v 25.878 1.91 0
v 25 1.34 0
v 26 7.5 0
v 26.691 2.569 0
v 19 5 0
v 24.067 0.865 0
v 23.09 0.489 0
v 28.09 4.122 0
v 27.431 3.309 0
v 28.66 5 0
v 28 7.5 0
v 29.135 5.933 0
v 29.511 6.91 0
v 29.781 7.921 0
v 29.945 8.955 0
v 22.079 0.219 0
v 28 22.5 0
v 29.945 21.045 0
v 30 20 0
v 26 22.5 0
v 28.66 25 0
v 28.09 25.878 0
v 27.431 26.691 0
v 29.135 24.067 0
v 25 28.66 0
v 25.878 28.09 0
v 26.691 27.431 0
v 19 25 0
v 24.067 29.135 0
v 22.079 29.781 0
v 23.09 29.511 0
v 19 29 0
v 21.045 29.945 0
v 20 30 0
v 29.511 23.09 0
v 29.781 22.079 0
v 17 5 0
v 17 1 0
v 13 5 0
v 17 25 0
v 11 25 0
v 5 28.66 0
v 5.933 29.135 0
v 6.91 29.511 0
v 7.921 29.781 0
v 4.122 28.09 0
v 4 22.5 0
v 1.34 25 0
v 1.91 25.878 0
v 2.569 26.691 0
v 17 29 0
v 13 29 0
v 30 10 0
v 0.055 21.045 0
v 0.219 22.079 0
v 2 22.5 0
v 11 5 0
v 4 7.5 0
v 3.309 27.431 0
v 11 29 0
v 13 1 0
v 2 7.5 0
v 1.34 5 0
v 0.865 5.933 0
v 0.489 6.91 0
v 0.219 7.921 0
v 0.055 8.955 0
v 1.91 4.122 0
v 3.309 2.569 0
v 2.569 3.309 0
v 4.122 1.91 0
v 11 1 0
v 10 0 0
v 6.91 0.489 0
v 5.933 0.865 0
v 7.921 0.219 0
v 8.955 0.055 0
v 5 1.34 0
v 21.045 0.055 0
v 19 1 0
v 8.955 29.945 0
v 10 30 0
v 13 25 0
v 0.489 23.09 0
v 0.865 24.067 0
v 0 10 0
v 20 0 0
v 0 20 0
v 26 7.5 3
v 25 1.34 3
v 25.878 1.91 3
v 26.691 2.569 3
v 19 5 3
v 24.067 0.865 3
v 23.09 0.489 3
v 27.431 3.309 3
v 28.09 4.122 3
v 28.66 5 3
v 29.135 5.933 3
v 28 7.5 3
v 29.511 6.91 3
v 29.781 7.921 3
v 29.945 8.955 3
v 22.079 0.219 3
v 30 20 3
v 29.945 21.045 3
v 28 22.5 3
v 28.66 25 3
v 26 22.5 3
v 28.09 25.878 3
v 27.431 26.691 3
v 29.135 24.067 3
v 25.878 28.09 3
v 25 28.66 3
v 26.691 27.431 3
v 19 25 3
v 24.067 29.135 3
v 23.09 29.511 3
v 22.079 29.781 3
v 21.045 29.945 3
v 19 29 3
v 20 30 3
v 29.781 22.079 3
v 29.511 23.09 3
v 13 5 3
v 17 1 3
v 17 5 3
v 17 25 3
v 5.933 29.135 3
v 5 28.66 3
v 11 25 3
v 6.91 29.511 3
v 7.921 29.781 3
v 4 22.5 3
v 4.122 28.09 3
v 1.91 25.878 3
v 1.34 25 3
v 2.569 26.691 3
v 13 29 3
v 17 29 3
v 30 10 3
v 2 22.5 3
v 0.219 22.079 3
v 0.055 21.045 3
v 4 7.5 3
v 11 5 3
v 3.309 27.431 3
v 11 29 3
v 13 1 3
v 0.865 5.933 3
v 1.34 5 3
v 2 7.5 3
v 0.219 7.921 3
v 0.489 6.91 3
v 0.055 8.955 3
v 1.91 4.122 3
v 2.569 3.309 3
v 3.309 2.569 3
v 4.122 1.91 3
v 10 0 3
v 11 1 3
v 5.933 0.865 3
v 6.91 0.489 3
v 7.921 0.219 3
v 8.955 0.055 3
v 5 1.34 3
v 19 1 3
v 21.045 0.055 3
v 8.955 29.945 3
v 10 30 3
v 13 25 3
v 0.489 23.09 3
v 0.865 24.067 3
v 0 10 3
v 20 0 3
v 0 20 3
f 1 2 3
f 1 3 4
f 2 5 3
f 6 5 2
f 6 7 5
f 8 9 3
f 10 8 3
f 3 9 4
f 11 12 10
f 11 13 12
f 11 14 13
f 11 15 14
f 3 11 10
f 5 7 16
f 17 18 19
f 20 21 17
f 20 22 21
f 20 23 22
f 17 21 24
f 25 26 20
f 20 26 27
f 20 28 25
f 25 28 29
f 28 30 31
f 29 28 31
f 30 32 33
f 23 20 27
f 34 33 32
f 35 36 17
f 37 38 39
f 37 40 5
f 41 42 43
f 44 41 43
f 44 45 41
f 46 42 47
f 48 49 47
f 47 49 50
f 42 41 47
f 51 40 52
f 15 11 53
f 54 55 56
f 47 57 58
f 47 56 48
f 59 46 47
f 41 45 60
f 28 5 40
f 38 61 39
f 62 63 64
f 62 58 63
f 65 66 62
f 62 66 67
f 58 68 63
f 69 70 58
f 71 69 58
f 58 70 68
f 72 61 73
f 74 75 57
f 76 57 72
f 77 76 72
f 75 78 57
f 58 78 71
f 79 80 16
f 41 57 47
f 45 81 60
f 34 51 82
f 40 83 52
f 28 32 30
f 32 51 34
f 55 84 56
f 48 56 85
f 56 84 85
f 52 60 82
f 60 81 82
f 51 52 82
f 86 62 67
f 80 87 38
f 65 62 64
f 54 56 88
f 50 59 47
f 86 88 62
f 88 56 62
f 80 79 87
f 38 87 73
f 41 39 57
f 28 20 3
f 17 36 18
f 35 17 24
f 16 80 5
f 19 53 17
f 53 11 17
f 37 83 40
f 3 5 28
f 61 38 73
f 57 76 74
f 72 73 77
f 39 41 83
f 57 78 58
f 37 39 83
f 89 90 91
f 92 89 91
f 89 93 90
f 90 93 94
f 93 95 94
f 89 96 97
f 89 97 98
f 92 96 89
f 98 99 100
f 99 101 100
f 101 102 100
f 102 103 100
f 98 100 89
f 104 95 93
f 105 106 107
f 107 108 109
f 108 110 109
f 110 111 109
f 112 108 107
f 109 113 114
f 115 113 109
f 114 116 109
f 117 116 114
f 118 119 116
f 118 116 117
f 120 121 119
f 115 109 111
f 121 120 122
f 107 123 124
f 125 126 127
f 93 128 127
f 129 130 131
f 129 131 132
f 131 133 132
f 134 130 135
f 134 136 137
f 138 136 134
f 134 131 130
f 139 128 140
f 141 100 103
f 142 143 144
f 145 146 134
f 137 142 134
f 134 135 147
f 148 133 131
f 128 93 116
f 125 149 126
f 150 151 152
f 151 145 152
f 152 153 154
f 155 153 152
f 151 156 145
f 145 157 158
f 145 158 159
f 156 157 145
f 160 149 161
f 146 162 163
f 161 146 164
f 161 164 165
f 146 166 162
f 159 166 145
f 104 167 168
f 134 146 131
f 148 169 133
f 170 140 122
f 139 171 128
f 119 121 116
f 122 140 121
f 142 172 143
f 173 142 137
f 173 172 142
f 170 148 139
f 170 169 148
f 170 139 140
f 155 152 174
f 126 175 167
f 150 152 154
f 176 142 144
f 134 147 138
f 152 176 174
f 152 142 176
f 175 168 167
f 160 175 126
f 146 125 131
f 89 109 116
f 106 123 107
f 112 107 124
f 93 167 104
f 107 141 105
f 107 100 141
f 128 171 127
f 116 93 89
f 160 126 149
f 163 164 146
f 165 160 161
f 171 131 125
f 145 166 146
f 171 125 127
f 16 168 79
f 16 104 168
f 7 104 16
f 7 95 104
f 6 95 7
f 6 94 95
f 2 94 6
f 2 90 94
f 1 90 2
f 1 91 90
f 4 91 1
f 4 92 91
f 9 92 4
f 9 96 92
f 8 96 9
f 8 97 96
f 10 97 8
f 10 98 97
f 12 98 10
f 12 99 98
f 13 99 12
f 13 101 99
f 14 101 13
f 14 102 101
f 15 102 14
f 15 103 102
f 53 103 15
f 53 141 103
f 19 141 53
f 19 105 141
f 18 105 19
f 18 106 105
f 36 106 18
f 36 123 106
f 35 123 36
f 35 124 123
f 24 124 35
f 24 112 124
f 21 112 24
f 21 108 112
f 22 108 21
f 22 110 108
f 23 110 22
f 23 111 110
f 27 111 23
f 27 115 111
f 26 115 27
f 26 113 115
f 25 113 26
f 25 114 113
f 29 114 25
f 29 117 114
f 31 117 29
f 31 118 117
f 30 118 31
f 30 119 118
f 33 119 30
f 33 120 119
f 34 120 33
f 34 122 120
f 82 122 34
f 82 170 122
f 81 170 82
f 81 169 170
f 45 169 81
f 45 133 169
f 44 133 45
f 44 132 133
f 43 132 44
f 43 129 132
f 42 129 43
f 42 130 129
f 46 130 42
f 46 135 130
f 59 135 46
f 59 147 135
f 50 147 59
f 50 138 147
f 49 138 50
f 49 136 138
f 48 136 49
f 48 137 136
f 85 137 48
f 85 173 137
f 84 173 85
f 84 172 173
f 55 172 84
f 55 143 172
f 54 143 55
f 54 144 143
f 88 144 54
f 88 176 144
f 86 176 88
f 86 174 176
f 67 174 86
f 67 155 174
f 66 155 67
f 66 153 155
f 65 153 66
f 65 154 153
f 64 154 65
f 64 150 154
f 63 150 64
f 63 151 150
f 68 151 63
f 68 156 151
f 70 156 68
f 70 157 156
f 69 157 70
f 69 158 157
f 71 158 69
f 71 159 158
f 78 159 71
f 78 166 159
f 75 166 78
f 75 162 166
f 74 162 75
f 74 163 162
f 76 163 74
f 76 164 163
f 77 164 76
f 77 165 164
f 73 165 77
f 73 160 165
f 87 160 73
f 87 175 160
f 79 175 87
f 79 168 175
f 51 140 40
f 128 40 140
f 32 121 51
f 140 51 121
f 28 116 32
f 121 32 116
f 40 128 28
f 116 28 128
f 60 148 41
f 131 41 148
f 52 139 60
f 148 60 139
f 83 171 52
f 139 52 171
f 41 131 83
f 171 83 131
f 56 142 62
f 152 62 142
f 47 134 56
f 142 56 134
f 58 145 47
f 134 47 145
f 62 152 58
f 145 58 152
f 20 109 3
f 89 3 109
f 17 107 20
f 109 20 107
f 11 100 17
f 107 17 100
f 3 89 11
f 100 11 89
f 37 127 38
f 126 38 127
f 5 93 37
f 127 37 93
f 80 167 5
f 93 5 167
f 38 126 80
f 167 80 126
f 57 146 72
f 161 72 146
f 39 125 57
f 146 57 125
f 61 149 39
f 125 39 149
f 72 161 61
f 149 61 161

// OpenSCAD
$fn = 60;

width_bracelet = 30;
length_bracelet = 30;

length_hole_bracelet = 0.5 * length_bracelet;
width_hole_bracelet = 2;

pos_x_hole_1 = 0.9 * width_bracelet;
pos_x_hole_2 = 0.1 * width_bracelet;
pos_y_hole = 0.50 * length_bracelet;

small_hole_width = 2;
small_hole_length = 4;
low_s_pos_hole = 0.1 * length_bracelet;
high_s_pos_hole = 0.9 * length_bracelet;
left_s_pos_hole = 0.6 * width_bracelet;
right_s_pos_hole = 0.4 * width_bracelet;

radius_edge = 10;
thickness = 5;

// Create square with holes..
linear_extrude(3) difference(){
    union(){
        difference() {
            // This creates the initial square
            square([width_bracelet, length_bracelet]);
            // This cuts out the square corners
            union() {
                translate([0, 0, 0])
                    square(radius_edge, center = false);
                translate([width_bracelet-radius_edge, 0, 0])
                    square(radius_edge, center = false);
                translate([0, length_bracelet-radius_edge, 0])
                    square(radius_edge, center = false);
                translate([width_bracelet-radius_edge, length_bracelet-radius_edge, 0])
                    square(radius_edge, center = false);
            };
        }
        // This adds the rounds corners
        translate([radius_edge, radius_edge, 0]) circle(r=radius_edge, center=true);
        translate([width_bracelet - radius_edge, radius_edge, 0]) circle(r=radius_edge, center=true);
        translate([radius_edge, length_bracelet - radius_edge, 0]) circle(r=radius_edge, center=true);
        translate([width_bracelet - radius_edge, length_bracelet - radius_edge, 0]) circle(r=radius_edge, center=true);

    }
      // Here we cutout the parts for the rope..linear_extrude
      union(){
            translate([pos_x_hole_2, pos_y_hole, 0])
                square([width_hole_bracelet, length_hole_bracelet], center=true);
            translate([pos_x_hole_1, pos_y_hole, 0])
                square([width_hole_bracelet, length_hole_bracelet], center=true);
            // Tiny holes
            translate([left_s_pos_hole, low_s_pos_hole, 0])
                square([small_hole_width, small_hole_length], center=true);
            translate([right_s_pos_hole, low_s_pos_hole, 0])
                square([small_hole_width, small_hole_length], center=true);
            // Tiny holes
            translate([left_s_pos_hole, high_s_pos_hole, 0])
                square([small_hole_width, small_hole_length], center=true);
            translate([right_s_pos_hole, high_s_pos_hole, 0])
                square([small_hole_width, small_hole_length], center=true);
        };
}
